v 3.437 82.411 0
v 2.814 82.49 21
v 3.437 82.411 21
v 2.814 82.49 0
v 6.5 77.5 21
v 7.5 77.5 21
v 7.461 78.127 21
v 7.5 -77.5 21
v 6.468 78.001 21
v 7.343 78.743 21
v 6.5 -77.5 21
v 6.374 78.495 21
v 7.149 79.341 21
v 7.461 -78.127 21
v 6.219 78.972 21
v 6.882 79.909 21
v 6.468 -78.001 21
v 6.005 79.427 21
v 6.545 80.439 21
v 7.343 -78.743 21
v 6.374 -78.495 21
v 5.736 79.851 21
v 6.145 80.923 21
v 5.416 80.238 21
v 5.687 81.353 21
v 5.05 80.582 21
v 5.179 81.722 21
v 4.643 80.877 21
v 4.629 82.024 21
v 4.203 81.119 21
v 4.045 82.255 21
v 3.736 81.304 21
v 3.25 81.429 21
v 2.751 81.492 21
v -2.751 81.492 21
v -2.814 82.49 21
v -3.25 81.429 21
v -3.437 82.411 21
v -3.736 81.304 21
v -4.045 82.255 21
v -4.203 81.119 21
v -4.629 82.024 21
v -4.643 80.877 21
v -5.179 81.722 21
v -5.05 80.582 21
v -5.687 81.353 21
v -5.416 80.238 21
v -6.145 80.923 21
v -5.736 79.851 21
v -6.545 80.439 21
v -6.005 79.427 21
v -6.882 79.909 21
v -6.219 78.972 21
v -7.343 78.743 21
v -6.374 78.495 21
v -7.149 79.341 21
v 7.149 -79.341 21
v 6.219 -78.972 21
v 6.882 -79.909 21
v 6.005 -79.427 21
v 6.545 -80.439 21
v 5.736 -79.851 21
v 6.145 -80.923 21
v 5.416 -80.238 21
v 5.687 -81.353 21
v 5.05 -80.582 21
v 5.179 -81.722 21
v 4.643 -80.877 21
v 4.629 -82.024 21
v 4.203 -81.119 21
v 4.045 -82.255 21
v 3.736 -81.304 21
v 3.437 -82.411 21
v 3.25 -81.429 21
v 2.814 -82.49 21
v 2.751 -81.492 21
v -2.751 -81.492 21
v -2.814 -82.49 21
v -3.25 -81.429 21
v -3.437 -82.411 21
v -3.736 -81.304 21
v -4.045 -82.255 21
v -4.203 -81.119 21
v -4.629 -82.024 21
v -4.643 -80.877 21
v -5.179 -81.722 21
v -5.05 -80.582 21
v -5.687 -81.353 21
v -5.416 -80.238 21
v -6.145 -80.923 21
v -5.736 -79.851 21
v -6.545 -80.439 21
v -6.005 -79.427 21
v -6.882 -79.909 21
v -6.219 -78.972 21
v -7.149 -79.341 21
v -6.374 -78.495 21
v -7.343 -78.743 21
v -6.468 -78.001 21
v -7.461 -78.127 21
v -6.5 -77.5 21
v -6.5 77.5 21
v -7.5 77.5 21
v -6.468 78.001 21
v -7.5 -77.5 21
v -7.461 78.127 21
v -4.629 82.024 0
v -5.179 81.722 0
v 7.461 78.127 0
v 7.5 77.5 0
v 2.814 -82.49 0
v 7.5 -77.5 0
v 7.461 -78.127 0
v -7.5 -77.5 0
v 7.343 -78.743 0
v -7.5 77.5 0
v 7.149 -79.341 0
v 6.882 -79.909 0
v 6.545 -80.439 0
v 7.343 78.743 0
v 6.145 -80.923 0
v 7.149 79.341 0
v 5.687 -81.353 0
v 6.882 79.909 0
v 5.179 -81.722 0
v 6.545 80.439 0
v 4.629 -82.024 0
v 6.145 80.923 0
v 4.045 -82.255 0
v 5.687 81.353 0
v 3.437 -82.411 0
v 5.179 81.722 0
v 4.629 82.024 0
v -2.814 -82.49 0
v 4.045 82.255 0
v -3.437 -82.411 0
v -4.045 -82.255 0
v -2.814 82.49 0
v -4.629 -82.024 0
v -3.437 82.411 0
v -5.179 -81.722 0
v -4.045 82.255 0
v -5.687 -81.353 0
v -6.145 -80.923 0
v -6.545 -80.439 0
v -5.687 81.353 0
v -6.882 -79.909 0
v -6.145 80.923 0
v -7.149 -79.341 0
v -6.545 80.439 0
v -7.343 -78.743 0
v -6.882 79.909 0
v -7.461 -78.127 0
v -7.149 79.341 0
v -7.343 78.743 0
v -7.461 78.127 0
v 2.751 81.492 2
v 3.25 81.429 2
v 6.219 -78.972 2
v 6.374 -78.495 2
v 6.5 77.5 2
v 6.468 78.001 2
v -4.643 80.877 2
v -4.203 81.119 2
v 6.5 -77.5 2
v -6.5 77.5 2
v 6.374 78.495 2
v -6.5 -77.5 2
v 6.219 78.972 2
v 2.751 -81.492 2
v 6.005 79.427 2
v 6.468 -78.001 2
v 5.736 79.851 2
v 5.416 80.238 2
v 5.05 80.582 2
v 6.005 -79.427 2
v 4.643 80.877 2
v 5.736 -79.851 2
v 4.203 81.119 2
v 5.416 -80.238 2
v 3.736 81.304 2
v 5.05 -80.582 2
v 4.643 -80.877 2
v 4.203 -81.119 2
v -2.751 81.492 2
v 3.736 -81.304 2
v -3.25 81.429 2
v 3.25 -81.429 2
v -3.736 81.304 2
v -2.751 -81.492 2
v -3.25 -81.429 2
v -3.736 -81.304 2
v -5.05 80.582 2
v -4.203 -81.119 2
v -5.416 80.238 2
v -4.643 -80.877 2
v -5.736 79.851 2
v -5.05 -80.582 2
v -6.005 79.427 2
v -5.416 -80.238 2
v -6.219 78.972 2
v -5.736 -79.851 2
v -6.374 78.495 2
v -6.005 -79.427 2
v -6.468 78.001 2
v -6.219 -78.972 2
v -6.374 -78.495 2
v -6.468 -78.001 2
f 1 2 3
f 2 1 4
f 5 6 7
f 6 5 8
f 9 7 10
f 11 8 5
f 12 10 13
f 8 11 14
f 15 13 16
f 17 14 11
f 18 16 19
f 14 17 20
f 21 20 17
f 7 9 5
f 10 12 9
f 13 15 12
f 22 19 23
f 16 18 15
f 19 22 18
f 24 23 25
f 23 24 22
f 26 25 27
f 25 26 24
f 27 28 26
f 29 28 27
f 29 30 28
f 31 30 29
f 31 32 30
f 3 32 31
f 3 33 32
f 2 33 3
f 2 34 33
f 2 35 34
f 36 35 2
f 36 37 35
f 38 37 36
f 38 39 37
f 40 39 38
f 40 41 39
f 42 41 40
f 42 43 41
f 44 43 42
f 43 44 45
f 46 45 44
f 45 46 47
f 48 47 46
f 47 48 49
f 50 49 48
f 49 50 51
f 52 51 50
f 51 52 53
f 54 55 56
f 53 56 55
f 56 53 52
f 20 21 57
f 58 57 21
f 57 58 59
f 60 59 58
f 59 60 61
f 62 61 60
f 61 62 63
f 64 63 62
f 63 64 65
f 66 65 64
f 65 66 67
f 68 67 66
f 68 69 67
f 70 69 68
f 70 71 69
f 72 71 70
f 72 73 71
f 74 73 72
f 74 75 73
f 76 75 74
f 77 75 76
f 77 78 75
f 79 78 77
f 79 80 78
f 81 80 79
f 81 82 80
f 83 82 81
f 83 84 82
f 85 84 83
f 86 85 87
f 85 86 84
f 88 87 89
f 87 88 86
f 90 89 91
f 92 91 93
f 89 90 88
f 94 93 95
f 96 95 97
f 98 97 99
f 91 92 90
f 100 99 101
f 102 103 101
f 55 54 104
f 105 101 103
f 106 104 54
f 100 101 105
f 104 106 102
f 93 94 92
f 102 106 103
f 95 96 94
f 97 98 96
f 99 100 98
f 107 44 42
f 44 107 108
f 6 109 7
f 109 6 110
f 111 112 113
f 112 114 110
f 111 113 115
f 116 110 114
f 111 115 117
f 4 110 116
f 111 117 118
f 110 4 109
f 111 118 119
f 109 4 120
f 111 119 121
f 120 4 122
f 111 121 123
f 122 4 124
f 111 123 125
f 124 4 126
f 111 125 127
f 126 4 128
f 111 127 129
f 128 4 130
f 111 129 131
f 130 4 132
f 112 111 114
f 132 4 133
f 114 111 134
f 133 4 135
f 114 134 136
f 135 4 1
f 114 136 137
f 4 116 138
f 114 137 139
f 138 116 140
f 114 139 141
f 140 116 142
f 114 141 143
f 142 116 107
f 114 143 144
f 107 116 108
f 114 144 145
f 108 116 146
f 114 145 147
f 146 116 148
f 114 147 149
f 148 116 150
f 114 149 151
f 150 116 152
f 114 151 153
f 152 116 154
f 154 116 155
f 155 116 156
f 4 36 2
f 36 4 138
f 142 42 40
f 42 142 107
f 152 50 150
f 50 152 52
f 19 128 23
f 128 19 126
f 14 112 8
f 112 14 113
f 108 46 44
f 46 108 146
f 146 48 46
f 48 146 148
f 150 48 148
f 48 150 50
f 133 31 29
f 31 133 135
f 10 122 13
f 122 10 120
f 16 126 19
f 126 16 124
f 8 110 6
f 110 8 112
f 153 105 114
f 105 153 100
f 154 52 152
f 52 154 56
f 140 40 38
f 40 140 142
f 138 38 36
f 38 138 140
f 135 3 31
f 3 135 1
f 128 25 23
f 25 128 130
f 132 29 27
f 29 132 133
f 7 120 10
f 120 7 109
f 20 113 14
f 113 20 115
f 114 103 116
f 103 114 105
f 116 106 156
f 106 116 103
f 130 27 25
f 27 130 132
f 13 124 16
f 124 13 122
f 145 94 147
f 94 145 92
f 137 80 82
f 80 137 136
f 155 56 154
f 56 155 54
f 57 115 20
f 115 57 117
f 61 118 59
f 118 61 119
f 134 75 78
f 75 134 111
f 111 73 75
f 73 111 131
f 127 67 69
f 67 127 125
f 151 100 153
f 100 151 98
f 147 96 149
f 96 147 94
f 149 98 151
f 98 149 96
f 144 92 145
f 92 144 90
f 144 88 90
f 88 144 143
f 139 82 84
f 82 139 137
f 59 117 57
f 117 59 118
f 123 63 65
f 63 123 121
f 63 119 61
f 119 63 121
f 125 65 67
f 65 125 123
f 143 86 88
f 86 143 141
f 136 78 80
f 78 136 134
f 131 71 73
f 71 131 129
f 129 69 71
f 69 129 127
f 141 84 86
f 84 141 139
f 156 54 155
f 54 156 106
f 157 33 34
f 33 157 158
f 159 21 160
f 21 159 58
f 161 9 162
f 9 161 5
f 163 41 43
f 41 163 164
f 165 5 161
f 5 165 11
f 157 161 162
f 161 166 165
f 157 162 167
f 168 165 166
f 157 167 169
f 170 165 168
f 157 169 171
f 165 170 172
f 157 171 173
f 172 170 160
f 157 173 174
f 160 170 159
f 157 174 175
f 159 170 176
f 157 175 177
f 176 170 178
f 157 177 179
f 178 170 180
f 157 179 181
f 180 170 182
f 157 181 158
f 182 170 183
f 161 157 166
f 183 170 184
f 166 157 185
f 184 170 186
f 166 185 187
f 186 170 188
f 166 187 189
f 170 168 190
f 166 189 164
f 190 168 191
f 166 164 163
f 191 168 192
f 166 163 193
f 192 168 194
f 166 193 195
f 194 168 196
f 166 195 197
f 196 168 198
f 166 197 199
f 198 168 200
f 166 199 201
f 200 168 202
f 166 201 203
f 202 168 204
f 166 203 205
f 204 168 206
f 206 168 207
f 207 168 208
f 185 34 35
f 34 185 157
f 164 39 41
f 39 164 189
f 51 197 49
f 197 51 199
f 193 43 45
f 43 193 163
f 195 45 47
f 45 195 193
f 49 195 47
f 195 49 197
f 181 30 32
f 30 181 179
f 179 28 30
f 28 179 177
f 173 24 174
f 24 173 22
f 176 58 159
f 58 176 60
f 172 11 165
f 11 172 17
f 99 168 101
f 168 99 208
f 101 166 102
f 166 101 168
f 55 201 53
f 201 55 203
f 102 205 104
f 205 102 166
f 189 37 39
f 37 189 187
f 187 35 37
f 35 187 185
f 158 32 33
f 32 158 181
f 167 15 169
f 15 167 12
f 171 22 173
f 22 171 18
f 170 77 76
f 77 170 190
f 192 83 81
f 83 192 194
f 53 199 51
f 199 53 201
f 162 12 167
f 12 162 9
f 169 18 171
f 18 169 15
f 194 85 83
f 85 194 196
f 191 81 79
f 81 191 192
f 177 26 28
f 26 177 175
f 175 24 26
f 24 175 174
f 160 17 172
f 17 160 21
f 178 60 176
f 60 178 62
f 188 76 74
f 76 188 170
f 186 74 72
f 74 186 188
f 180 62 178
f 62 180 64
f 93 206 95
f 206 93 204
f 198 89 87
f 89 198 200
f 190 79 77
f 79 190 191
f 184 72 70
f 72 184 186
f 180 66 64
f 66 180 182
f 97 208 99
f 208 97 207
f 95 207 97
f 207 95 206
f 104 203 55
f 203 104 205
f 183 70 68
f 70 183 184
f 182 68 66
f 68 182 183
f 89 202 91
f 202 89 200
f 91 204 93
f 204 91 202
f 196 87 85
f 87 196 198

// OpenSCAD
$fn = 50;


difference() {
	union() {
		hull() {
			translate(v = [-2.5000000000, 77.5000000000, 0]) {
				cylinder(h = 21, r = 5);
			}
			translate(v = [2.5000000000, 77.5000000000, 0]) {
				cylinder(h = 21, r = 5);
			}
			translate(v = [-2.5000000000, -77.5000000000, 0]) {
				cylinder(h = 21, r = 5);
			}
			translate(v = [2.5000000000, -77.5000000000, 0]) {
				cylinder(h = 21, r = 5);
			}
		}
	}
	union() {
		translate(v = [0, 0, 2]) {
			hull() {
				translate(v = [-2.5000000000, 77.5000000000, 0]) {
					cylinder(h = 19, r = 4);
				}
				translate(v = [2.5000000000, 77.5000000000, 0]) {
					cylinder(h = 19, r = 4);
				}
				translate(v = [-2.5000000000, -77.5000000000, 0]) {
					cylinder(h = 19, r = 4);
				}
				translate(v = [2.5000000000, -77.5000000000, 0]) {
					cylinder(h = 19, r = 4);
				}
			}
		}
	}
}
